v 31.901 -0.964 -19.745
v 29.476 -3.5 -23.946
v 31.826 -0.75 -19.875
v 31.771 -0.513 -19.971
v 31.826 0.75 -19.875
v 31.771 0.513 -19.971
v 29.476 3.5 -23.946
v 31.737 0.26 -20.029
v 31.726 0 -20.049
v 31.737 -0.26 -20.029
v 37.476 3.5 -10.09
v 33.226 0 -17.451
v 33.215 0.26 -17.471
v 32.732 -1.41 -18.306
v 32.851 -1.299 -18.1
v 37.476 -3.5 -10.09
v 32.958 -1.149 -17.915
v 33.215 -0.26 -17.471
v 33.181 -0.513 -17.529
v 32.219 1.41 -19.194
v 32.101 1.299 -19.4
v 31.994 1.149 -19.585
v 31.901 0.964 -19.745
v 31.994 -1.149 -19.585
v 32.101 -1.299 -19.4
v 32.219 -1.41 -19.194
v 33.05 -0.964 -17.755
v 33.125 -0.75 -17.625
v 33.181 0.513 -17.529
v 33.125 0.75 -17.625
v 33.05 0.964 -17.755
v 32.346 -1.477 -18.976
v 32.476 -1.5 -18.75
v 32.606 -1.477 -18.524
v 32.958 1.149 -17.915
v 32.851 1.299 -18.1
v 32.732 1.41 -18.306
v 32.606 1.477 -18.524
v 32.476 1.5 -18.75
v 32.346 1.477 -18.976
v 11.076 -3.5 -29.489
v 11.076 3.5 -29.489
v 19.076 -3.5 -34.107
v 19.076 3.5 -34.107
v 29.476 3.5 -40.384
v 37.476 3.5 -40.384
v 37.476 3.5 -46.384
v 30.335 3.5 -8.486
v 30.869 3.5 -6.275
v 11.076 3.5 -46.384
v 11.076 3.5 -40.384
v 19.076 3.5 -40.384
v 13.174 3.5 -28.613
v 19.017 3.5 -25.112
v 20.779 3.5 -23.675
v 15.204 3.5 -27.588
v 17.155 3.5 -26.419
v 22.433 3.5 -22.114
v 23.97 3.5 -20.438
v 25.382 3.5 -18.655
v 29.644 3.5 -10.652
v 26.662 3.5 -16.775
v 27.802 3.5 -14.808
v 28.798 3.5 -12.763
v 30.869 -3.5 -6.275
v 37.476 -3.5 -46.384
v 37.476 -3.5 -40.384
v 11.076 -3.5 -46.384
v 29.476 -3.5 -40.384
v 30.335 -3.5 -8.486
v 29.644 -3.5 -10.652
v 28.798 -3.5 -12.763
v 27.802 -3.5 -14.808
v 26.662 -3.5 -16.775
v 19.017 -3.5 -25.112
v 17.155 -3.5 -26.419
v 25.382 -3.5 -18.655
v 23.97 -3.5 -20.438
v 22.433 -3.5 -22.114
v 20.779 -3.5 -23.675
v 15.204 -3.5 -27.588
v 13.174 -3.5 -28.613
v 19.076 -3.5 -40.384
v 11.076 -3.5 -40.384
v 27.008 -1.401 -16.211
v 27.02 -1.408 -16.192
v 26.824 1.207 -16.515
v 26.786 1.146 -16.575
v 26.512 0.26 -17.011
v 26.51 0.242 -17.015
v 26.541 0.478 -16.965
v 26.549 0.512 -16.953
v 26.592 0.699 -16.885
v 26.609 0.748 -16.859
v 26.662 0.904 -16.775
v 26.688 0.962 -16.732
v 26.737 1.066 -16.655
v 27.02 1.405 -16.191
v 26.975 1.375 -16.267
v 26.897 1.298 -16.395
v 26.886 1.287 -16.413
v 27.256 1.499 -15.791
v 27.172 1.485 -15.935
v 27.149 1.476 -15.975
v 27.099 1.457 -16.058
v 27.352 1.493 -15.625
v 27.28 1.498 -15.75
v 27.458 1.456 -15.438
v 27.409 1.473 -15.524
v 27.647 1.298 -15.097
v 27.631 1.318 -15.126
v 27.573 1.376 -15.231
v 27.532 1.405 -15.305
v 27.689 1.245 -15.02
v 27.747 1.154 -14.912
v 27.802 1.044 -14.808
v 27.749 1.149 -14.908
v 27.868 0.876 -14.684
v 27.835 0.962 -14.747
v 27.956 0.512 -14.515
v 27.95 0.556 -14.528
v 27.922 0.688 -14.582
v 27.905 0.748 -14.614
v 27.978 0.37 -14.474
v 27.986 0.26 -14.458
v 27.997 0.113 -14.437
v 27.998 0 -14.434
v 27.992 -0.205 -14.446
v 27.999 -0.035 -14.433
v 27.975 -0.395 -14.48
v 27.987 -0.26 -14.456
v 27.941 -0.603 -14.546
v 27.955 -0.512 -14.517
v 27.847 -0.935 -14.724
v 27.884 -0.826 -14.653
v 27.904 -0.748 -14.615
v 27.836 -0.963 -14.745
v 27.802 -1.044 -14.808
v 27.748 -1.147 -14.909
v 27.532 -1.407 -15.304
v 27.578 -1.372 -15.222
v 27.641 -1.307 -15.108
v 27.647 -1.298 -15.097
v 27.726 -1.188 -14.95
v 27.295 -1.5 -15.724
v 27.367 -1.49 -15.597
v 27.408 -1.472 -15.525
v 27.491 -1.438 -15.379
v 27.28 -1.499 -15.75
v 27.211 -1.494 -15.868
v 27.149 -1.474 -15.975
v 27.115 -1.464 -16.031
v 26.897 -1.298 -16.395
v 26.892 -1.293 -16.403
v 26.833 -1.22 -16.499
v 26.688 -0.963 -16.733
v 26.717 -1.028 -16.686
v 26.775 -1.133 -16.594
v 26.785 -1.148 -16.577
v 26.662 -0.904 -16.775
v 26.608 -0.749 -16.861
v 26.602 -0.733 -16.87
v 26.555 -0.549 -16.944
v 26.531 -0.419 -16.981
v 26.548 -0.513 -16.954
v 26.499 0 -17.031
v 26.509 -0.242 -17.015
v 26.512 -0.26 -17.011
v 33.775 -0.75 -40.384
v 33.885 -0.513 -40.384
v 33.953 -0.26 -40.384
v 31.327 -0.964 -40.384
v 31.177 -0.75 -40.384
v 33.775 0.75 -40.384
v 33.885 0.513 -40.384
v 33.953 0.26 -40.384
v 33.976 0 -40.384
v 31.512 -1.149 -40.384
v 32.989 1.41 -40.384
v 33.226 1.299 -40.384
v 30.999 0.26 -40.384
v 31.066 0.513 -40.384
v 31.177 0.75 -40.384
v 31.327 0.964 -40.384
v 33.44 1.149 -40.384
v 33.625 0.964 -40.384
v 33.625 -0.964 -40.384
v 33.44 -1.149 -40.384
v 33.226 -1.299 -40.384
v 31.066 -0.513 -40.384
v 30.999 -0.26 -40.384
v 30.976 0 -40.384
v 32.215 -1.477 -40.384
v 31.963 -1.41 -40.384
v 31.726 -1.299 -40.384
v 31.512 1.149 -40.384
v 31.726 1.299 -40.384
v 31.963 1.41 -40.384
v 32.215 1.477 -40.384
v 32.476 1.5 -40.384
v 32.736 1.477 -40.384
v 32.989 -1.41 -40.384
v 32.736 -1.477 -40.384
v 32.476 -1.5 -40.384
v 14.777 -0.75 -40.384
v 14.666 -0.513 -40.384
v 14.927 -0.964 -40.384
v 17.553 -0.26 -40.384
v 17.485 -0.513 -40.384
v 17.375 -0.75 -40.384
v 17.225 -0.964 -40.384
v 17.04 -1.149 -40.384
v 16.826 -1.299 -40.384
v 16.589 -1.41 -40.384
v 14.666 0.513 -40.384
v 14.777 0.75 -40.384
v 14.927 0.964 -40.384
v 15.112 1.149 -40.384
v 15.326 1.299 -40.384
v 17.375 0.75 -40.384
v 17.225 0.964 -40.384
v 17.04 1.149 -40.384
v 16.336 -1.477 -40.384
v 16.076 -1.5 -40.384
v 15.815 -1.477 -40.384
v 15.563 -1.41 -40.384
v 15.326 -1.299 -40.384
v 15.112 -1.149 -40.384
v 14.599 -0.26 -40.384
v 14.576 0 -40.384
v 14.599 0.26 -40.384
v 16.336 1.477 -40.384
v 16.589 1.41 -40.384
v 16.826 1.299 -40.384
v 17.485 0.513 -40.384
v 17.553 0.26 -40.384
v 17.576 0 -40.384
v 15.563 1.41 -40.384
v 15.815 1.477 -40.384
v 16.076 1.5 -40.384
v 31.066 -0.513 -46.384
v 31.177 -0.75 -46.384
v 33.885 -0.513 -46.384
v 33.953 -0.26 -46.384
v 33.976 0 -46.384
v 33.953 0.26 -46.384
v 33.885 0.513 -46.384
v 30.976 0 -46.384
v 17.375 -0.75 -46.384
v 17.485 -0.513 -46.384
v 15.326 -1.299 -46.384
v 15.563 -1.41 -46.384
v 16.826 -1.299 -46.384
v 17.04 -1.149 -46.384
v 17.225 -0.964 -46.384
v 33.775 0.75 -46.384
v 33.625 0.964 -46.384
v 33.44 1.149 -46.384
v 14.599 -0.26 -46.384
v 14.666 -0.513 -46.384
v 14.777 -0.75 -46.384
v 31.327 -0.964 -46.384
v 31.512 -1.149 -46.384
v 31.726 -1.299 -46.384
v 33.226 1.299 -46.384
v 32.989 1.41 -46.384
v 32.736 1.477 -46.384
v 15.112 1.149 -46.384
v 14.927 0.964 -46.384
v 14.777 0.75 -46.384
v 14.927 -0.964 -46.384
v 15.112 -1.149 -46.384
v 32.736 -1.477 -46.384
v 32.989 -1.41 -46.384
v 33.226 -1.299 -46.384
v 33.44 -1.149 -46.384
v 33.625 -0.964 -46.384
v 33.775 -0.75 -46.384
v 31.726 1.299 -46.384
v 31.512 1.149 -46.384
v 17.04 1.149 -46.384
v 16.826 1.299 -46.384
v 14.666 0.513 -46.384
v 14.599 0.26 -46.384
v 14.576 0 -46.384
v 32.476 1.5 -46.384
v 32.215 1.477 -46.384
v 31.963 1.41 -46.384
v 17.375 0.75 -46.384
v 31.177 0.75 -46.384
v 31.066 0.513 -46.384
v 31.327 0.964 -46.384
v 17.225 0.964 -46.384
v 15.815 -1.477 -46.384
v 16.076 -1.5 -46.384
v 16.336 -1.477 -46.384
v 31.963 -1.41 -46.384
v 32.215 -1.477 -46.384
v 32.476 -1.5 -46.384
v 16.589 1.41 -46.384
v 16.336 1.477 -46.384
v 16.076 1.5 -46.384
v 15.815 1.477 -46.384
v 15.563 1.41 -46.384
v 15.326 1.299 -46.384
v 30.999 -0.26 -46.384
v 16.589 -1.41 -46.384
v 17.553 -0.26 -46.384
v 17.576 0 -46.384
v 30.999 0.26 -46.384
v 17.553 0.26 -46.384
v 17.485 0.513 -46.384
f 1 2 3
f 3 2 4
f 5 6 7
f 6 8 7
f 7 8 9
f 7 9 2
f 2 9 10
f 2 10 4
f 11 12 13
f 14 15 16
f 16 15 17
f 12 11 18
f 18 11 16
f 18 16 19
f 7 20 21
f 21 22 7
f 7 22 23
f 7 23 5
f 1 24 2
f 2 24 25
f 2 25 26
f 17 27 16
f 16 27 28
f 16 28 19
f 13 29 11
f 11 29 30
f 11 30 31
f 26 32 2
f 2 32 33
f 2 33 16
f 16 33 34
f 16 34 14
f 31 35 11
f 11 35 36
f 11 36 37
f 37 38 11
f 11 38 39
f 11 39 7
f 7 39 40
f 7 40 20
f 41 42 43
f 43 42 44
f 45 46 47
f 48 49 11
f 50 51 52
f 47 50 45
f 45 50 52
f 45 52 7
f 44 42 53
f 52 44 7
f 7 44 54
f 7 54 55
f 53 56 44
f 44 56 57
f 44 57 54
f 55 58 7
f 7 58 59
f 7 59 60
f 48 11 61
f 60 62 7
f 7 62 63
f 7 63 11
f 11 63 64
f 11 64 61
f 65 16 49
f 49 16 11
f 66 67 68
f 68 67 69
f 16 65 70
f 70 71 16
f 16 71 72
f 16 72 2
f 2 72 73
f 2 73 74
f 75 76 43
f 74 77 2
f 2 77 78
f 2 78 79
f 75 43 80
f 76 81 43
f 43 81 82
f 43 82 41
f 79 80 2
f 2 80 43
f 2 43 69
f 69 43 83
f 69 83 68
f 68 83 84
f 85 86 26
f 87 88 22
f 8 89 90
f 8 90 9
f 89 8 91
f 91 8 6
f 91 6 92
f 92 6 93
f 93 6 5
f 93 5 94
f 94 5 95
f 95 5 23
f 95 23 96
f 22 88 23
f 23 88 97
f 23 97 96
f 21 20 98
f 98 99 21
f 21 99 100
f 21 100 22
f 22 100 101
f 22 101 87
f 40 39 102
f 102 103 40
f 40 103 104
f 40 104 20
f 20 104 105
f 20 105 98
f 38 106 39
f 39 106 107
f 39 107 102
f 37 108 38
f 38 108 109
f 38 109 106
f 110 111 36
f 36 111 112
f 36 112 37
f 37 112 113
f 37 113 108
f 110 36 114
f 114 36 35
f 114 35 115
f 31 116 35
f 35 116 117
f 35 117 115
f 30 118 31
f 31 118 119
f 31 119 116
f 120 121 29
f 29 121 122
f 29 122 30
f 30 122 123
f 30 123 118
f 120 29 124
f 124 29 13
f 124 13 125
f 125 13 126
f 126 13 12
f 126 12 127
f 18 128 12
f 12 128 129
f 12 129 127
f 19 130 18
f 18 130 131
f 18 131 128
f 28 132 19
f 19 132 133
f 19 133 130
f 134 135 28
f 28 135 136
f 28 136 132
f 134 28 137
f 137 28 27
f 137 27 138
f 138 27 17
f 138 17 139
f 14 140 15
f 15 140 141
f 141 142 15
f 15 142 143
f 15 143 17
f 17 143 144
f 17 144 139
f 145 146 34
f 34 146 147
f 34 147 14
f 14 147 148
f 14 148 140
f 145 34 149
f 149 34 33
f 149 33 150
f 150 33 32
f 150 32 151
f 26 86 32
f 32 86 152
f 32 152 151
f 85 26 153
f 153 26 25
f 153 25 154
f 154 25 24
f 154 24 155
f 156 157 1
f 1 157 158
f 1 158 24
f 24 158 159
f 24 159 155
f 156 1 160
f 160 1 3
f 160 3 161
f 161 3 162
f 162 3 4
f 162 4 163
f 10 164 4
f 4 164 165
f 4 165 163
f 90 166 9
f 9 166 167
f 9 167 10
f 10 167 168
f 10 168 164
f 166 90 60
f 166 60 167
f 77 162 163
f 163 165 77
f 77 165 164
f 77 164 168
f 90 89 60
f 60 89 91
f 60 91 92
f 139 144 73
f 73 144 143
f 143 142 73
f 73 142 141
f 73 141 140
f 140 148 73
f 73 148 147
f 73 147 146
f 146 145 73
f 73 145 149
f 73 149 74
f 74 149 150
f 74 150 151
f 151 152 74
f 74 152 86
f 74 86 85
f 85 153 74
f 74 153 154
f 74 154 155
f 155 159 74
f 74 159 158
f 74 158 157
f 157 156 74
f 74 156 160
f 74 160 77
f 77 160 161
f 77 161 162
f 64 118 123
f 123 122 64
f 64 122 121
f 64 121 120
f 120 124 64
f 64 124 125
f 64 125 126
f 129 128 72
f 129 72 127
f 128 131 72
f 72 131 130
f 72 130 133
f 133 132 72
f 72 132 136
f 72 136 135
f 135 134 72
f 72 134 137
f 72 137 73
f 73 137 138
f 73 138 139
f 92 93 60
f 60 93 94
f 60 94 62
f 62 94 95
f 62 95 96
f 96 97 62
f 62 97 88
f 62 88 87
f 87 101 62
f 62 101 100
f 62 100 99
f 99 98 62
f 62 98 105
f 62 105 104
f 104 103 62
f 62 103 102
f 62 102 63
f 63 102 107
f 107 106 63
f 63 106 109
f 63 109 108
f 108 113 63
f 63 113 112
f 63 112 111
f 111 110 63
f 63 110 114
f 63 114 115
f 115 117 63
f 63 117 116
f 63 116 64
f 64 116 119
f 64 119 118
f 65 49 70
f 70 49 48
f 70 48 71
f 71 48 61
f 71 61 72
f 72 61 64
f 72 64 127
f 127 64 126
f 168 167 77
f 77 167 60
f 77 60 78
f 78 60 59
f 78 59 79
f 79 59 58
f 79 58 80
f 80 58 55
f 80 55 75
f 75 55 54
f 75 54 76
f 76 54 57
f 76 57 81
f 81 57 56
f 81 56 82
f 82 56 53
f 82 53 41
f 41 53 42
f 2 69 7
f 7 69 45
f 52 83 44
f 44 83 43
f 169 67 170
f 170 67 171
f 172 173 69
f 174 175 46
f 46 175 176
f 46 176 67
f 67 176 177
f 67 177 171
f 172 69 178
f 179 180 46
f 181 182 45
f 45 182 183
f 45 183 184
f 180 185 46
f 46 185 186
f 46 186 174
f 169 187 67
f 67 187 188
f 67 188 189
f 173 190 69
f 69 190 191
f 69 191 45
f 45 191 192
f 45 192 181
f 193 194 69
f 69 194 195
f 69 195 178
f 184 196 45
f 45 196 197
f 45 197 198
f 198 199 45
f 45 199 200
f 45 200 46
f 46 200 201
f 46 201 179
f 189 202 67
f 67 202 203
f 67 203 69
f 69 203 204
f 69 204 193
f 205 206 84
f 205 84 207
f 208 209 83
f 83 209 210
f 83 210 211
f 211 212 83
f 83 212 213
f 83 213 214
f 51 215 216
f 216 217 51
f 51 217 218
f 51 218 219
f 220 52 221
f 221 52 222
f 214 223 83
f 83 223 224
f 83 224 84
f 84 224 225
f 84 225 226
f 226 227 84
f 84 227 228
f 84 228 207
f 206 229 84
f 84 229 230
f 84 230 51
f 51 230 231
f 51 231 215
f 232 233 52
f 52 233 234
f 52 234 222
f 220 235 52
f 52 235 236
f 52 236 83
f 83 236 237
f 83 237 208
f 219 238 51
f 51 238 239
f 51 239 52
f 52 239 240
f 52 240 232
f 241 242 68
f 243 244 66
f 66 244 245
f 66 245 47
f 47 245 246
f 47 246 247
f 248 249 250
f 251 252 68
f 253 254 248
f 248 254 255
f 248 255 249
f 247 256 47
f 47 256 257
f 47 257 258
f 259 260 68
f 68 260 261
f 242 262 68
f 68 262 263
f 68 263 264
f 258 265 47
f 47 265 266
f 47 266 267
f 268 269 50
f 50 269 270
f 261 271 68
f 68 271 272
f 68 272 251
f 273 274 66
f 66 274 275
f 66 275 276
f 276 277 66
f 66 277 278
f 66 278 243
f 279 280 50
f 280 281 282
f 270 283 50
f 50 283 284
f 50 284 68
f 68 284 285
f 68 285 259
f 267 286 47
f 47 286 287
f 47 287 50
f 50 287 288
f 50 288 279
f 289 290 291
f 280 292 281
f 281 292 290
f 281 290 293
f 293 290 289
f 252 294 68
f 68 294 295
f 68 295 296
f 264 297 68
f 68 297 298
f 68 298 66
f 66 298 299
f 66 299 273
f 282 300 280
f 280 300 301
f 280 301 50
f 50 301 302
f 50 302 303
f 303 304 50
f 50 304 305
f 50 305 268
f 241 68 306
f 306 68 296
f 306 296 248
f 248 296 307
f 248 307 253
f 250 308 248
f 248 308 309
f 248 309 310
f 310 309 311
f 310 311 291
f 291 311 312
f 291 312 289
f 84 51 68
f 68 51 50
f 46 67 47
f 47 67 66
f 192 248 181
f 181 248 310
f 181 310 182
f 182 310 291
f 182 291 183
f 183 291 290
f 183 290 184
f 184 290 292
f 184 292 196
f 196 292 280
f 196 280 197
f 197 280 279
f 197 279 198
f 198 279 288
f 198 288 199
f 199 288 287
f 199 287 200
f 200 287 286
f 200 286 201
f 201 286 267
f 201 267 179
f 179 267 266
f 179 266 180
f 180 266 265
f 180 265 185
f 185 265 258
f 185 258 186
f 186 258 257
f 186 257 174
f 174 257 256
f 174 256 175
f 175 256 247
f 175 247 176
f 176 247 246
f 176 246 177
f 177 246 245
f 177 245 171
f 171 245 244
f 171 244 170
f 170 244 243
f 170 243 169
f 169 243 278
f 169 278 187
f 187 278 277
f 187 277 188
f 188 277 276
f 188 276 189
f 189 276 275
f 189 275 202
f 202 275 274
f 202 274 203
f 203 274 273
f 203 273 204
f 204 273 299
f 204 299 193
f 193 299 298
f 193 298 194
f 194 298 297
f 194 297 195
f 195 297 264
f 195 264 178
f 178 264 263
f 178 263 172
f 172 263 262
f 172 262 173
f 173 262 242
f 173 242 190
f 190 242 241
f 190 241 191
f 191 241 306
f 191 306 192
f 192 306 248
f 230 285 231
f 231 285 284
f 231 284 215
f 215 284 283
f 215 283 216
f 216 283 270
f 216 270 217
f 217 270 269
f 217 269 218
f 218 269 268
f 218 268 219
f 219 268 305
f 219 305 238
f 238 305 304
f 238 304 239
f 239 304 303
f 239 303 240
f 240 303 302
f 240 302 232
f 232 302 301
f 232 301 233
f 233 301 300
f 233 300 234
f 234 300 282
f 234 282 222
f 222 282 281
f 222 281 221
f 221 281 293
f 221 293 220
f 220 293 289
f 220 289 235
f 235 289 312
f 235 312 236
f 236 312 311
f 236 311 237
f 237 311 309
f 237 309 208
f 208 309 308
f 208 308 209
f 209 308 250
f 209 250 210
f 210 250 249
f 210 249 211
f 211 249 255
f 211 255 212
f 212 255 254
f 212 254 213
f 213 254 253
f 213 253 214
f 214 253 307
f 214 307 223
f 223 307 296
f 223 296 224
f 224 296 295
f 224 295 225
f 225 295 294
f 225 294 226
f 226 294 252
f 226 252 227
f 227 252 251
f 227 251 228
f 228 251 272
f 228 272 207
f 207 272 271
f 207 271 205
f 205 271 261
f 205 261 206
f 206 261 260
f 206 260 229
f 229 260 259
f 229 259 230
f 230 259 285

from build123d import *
from build123d.topology import SkipClean

# Parameters (mm, degrees)
SKETCH1_R                            = 31.5
BOSS_EXTRUDE1_DEPTH                  = 3.5
SKETCH2_R                            = 1.5
CUT_EXTRUDE1_DEPTH                   = 4
CIRPATTERN1_COUNT                    = 6
SKETCH3_W                            = 30
SKETCH3_H                            = 7
SKETCH3_R                            = 1.5
BOSS_EXTRUDE2_DEPTH                  = 6
BOSS_EXTRUDE2_DIRECTION_2_REACH      = 77.498
BOSS_EXTRUDE2_DIRECTION_2_END_RADIUS = 31.5
SKETCH6_W                            = 26.400196428
SKETCH6_H                            = 7
SKETCH6_R                            = 1.5
BOSS_EXTRUDE3_DEPTH                  = 6
BOSS_EXTRUDE4_REACH                  = 83.142
SKETCH7_W                            = 10.400196428
SKETCH7_H                            = 7


with BuildPart() as part:
    # Sketch1 → Boss-Extrude1 (new, symmetric)
    with BuildSketch(Plane(origin=(0, 0, 0), x_dir=(1, 0, 0), z_dir=(0, 1, 0))):
        Circle(SKETCH1_R)
    extrude(amount=BOSS_EXTRUDE1_DEPTH, both=True)

    # Sketch2 → Cut-Extrude1 (cut)
    with BuildSketch(Plane(origin=(27.279800219, 0, -15.75), x_dir=(-0.499999999999998, 0, -0.8660254037844398), z_dir=(0.8660254037844399, 0, -0.49999999999999806))):
        Circle(SKETCH2_R)
    cut_extrude1 = extrude(amount=-CUT_EXTRUDE1_DEPTH, mode=Mode.SUBTRACT)

    # CirPattern1: Cut-Extrude1 ×6 about axis
    cirpattern1_axis = Axis((0, -3.5, 0), (0, 1, 0))
    for i in range(1, CIRPATTERN1_COUNT):
        add(cut_extrude1.rotate(cirpattern1_axis, i * 360 / CIRPATTERN1_COUNT), mode=Mode.SUBTRACT)


with BuildPart() as body_2:
    # Sketch3 → Boss-Extrude2 (new body)
    with BuildSketch(Plane(origin=(27.279800219, 0, -15.75), x_dir=(-0.499999999999998, 0, -0.8660254037844398), z_dir=(0.8660254037844399, 0, -0.49999999999999806))):
        with Locations((5, 0)):
            Rectangle(SKETCH3_W, SKETCH3_H)
        Circle(SKETCH3_R, mode=Mode.SUBTRACT)
    extrude(amount=BOSS_EXTRUDE2_DEPTH)

    # Boss-Extrude2 direction 2: up to this cylinder (the profile starts outside it)
    with SkipClean():  # the faces are left unmerged after this step: merging them gives an invalid solid
        boss_extrude2_direction_2_end = Plane(origin=(0, 0, 0), z_dir=(0, 1, 0)) * Cylinder(BOSS_EXTRUDE2_DIRECTION_2_END_RADIUS, 218.996, mode=Mode.PRIVATE)
        # Sketch3 → Boss-Extrude2 direction 2 (add, up to the surface)
        with BuildSketch(Plane(origin=(27.279800219, 0, -15.75), x_dir=(-0.499999999999998, 0, -0.8660254037844398), z_dir=(0.8660254037844399, 0, -0.49999999999999806)), mode=Mode.PRIVATE) as boss_extrude2_direction_2_sk1:
            with Locations((5, 0)):
                Rectangle(SKETCH3_W, SKETCH3_H)
            Circle(SKETCH3_R, mode=Mode.SUBTRACT)
        boss_extrude2_direction_2_tool1 = extrude(boss_extrude2_direction_2_sk1.sketch, amount=-BOSS_EXTRUDE2_DIRECTION_2_REACH, mode=Mode.PRIVATE) - boss_extrude2_direction_2_end
        add(boss_extrude2_direction_2_tool1.solids().sort_by_distance((24.692719, 0, -20.230956))[0])
        add(boss_extrude2_direction_2_tool1.solids().sort_by_distance((24.692719, 0, -20.230956))[1])

    # Sketch7 → Boss-Extrude4 (add, up to next)
    with BuildSketch(Plane.XY.offset(-40.383857754), mode=Mode.PRIVATE) as boss_extrude4_sk1:
        with Locations((24.275854428, 0)):
            Rectangle(SKETCH7_W, SKETCH7_H)
    boss_extrude4_tool1 = extrude(boss_extrude4_sk1.sketch, amount=BOSS_EXTRUDE4_REACH, mode=Mode.PRIVATE) - body_2.part


with BuildPart() as body_3:
    # Sketch6 → Boss-Extrude3 (new body)
    with BuildSketch(Plane.XY.offset(-46.383857754)):
        with Locations((24.275854428, 0)):
            Rectangle(SKETCH6_W, SKETCH6_H)
        with Locations((32.475952642, 0)):
            Circle(SKETCH6_R, mode=Mode.SUBTRACT)
        with Locations((16.075756214, 0)):
            Circle(SKETCH6_R, mode=Mode.SUBTRACT)
    extrude(amount=BOSS_EXTRUDE3_DEPTH)


with BuildPart() as body_2_1:
    add(body_2.part)

    add(body_3.part)  # Boss-Extrude4 merges body 3
    add(boss_extrude4_tool1.solids().sort_by_distance((24.275854, 0, -40.383858))[0])


solid = body_2_1.part
